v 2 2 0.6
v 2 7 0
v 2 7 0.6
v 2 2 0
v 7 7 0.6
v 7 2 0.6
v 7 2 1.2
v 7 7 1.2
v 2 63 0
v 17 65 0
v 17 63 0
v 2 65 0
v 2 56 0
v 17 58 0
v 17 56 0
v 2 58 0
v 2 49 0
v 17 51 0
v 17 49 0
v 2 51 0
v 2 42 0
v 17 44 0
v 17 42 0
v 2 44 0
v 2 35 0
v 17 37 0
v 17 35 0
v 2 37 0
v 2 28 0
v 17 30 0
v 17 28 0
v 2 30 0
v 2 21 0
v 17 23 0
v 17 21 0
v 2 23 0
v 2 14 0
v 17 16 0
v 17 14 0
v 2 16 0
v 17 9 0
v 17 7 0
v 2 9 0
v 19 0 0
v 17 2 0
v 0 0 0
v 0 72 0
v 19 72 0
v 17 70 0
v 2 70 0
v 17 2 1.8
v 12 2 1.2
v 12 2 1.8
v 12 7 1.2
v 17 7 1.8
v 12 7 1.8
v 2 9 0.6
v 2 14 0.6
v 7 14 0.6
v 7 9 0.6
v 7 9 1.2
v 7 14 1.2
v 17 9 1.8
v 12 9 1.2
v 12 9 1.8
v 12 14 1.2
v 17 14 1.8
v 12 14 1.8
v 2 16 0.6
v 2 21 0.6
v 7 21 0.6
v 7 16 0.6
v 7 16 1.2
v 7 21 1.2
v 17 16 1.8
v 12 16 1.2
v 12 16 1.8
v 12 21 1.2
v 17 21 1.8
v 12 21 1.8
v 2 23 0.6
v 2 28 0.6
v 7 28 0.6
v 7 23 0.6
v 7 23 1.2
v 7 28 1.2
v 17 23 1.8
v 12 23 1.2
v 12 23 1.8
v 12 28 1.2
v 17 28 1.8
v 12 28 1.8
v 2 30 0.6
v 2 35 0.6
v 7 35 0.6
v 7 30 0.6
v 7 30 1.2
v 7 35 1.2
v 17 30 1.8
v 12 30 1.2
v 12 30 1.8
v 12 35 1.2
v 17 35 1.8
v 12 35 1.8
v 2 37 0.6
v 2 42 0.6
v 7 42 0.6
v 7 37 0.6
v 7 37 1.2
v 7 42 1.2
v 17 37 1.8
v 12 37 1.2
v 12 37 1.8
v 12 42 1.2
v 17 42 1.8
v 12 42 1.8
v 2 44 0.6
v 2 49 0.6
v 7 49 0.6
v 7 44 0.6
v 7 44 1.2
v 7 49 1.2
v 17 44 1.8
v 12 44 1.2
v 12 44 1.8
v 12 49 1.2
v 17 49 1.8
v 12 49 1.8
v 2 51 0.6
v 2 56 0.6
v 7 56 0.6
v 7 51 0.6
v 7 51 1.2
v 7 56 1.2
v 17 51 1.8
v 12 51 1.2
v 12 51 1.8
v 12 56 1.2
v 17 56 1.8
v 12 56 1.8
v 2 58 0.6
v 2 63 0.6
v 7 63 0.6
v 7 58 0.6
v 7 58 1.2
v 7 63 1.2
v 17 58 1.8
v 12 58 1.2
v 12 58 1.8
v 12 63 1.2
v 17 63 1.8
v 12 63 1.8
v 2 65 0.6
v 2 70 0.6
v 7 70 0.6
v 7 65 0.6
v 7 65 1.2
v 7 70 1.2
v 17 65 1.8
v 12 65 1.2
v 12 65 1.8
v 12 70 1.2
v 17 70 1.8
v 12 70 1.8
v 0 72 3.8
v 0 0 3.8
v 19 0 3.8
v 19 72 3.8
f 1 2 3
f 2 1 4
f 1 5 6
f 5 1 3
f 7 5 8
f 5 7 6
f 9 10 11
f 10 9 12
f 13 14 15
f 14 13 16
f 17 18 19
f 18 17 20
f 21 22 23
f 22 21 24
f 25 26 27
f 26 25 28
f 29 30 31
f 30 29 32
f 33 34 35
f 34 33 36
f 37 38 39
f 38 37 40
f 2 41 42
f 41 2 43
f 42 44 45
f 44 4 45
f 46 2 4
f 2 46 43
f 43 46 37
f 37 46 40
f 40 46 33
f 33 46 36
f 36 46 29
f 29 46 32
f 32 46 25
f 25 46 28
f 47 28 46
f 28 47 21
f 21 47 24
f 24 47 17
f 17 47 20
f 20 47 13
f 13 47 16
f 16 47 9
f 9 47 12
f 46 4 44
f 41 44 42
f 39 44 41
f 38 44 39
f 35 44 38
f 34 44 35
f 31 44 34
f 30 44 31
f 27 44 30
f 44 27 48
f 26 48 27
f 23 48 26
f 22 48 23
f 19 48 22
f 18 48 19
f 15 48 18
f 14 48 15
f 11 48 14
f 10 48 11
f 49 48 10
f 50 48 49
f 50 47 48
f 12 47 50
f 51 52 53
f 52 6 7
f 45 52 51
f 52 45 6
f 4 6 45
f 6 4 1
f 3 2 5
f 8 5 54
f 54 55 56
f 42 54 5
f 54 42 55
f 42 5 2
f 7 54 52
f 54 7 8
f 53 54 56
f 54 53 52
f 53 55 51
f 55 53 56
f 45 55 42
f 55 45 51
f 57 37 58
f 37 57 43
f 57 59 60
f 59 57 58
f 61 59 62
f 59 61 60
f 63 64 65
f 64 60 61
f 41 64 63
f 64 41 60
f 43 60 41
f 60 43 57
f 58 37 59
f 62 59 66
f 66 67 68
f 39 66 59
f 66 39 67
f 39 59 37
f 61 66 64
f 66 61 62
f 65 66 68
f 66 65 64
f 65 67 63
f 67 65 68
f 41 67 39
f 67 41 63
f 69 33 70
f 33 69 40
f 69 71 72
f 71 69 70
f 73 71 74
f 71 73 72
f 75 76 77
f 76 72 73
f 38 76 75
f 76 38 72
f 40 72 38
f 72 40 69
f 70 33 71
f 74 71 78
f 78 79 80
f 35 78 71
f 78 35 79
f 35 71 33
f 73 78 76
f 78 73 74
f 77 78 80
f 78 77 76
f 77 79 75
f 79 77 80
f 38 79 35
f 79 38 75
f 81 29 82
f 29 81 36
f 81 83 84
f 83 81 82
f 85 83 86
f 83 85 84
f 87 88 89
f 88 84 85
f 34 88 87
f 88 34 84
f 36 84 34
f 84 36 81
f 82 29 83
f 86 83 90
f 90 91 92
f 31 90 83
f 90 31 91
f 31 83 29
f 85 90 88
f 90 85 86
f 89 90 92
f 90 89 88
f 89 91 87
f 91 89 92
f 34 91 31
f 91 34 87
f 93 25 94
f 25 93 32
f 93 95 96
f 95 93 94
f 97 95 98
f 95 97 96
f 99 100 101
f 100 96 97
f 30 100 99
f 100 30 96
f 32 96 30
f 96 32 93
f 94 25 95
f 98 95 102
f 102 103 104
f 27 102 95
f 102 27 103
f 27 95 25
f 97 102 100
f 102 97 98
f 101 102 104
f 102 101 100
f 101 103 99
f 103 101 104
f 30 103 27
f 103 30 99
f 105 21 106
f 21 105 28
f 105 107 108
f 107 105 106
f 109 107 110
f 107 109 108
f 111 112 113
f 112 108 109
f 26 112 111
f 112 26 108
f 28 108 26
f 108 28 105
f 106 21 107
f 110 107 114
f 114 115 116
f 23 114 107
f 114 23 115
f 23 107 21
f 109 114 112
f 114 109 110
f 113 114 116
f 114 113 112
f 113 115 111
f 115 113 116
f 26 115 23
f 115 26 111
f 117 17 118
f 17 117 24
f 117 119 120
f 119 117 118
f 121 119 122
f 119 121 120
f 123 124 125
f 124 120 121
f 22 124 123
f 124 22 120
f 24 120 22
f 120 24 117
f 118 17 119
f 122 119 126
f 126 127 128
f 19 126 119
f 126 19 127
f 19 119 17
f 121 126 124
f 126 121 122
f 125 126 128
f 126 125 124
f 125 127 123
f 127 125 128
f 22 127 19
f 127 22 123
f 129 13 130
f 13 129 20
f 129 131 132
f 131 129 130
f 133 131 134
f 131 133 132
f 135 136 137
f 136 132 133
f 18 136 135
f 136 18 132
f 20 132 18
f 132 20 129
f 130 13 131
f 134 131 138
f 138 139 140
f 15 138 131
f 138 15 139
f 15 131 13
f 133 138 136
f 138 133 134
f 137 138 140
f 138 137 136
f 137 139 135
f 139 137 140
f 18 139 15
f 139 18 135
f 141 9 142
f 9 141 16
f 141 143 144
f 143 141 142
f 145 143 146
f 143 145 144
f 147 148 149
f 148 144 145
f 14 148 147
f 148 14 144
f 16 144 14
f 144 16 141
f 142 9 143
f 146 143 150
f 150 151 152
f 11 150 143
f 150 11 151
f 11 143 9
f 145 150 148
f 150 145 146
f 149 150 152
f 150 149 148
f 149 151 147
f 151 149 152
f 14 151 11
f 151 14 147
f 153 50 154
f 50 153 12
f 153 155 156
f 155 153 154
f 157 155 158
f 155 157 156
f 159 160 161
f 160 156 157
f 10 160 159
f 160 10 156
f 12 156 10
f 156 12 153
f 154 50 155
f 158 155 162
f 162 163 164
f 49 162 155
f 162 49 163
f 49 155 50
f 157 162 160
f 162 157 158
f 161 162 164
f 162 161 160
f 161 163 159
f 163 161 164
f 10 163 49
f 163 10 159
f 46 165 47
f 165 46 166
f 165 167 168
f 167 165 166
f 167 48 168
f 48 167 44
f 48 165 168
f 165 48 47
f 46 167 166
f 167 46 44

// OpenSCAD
$fa = 1;
$fs = 0.2;

base_padding = 2;
padding = 2;

depth_increment = 0.6;
width = 5;

num_increments = 3;
rows = 10;

module test_trough() {
    for (i=[0:num_increments-1]){
        translate(v = [width*i, 0, 0])
            cube(size=[width, width, depth_increment*(i+1)]); 
    }
}

difference() {
    cube(size = [2*padding+num_increments*width,
                 padding*(rows+1)+width*rows,
                 num_increments*depth_increment+base_padding]);
    for (i=[0:rows-1]){
        translate(v = [padding, padding*(i+1)+width*i, 0])
            test_trough(); 
    }
}
